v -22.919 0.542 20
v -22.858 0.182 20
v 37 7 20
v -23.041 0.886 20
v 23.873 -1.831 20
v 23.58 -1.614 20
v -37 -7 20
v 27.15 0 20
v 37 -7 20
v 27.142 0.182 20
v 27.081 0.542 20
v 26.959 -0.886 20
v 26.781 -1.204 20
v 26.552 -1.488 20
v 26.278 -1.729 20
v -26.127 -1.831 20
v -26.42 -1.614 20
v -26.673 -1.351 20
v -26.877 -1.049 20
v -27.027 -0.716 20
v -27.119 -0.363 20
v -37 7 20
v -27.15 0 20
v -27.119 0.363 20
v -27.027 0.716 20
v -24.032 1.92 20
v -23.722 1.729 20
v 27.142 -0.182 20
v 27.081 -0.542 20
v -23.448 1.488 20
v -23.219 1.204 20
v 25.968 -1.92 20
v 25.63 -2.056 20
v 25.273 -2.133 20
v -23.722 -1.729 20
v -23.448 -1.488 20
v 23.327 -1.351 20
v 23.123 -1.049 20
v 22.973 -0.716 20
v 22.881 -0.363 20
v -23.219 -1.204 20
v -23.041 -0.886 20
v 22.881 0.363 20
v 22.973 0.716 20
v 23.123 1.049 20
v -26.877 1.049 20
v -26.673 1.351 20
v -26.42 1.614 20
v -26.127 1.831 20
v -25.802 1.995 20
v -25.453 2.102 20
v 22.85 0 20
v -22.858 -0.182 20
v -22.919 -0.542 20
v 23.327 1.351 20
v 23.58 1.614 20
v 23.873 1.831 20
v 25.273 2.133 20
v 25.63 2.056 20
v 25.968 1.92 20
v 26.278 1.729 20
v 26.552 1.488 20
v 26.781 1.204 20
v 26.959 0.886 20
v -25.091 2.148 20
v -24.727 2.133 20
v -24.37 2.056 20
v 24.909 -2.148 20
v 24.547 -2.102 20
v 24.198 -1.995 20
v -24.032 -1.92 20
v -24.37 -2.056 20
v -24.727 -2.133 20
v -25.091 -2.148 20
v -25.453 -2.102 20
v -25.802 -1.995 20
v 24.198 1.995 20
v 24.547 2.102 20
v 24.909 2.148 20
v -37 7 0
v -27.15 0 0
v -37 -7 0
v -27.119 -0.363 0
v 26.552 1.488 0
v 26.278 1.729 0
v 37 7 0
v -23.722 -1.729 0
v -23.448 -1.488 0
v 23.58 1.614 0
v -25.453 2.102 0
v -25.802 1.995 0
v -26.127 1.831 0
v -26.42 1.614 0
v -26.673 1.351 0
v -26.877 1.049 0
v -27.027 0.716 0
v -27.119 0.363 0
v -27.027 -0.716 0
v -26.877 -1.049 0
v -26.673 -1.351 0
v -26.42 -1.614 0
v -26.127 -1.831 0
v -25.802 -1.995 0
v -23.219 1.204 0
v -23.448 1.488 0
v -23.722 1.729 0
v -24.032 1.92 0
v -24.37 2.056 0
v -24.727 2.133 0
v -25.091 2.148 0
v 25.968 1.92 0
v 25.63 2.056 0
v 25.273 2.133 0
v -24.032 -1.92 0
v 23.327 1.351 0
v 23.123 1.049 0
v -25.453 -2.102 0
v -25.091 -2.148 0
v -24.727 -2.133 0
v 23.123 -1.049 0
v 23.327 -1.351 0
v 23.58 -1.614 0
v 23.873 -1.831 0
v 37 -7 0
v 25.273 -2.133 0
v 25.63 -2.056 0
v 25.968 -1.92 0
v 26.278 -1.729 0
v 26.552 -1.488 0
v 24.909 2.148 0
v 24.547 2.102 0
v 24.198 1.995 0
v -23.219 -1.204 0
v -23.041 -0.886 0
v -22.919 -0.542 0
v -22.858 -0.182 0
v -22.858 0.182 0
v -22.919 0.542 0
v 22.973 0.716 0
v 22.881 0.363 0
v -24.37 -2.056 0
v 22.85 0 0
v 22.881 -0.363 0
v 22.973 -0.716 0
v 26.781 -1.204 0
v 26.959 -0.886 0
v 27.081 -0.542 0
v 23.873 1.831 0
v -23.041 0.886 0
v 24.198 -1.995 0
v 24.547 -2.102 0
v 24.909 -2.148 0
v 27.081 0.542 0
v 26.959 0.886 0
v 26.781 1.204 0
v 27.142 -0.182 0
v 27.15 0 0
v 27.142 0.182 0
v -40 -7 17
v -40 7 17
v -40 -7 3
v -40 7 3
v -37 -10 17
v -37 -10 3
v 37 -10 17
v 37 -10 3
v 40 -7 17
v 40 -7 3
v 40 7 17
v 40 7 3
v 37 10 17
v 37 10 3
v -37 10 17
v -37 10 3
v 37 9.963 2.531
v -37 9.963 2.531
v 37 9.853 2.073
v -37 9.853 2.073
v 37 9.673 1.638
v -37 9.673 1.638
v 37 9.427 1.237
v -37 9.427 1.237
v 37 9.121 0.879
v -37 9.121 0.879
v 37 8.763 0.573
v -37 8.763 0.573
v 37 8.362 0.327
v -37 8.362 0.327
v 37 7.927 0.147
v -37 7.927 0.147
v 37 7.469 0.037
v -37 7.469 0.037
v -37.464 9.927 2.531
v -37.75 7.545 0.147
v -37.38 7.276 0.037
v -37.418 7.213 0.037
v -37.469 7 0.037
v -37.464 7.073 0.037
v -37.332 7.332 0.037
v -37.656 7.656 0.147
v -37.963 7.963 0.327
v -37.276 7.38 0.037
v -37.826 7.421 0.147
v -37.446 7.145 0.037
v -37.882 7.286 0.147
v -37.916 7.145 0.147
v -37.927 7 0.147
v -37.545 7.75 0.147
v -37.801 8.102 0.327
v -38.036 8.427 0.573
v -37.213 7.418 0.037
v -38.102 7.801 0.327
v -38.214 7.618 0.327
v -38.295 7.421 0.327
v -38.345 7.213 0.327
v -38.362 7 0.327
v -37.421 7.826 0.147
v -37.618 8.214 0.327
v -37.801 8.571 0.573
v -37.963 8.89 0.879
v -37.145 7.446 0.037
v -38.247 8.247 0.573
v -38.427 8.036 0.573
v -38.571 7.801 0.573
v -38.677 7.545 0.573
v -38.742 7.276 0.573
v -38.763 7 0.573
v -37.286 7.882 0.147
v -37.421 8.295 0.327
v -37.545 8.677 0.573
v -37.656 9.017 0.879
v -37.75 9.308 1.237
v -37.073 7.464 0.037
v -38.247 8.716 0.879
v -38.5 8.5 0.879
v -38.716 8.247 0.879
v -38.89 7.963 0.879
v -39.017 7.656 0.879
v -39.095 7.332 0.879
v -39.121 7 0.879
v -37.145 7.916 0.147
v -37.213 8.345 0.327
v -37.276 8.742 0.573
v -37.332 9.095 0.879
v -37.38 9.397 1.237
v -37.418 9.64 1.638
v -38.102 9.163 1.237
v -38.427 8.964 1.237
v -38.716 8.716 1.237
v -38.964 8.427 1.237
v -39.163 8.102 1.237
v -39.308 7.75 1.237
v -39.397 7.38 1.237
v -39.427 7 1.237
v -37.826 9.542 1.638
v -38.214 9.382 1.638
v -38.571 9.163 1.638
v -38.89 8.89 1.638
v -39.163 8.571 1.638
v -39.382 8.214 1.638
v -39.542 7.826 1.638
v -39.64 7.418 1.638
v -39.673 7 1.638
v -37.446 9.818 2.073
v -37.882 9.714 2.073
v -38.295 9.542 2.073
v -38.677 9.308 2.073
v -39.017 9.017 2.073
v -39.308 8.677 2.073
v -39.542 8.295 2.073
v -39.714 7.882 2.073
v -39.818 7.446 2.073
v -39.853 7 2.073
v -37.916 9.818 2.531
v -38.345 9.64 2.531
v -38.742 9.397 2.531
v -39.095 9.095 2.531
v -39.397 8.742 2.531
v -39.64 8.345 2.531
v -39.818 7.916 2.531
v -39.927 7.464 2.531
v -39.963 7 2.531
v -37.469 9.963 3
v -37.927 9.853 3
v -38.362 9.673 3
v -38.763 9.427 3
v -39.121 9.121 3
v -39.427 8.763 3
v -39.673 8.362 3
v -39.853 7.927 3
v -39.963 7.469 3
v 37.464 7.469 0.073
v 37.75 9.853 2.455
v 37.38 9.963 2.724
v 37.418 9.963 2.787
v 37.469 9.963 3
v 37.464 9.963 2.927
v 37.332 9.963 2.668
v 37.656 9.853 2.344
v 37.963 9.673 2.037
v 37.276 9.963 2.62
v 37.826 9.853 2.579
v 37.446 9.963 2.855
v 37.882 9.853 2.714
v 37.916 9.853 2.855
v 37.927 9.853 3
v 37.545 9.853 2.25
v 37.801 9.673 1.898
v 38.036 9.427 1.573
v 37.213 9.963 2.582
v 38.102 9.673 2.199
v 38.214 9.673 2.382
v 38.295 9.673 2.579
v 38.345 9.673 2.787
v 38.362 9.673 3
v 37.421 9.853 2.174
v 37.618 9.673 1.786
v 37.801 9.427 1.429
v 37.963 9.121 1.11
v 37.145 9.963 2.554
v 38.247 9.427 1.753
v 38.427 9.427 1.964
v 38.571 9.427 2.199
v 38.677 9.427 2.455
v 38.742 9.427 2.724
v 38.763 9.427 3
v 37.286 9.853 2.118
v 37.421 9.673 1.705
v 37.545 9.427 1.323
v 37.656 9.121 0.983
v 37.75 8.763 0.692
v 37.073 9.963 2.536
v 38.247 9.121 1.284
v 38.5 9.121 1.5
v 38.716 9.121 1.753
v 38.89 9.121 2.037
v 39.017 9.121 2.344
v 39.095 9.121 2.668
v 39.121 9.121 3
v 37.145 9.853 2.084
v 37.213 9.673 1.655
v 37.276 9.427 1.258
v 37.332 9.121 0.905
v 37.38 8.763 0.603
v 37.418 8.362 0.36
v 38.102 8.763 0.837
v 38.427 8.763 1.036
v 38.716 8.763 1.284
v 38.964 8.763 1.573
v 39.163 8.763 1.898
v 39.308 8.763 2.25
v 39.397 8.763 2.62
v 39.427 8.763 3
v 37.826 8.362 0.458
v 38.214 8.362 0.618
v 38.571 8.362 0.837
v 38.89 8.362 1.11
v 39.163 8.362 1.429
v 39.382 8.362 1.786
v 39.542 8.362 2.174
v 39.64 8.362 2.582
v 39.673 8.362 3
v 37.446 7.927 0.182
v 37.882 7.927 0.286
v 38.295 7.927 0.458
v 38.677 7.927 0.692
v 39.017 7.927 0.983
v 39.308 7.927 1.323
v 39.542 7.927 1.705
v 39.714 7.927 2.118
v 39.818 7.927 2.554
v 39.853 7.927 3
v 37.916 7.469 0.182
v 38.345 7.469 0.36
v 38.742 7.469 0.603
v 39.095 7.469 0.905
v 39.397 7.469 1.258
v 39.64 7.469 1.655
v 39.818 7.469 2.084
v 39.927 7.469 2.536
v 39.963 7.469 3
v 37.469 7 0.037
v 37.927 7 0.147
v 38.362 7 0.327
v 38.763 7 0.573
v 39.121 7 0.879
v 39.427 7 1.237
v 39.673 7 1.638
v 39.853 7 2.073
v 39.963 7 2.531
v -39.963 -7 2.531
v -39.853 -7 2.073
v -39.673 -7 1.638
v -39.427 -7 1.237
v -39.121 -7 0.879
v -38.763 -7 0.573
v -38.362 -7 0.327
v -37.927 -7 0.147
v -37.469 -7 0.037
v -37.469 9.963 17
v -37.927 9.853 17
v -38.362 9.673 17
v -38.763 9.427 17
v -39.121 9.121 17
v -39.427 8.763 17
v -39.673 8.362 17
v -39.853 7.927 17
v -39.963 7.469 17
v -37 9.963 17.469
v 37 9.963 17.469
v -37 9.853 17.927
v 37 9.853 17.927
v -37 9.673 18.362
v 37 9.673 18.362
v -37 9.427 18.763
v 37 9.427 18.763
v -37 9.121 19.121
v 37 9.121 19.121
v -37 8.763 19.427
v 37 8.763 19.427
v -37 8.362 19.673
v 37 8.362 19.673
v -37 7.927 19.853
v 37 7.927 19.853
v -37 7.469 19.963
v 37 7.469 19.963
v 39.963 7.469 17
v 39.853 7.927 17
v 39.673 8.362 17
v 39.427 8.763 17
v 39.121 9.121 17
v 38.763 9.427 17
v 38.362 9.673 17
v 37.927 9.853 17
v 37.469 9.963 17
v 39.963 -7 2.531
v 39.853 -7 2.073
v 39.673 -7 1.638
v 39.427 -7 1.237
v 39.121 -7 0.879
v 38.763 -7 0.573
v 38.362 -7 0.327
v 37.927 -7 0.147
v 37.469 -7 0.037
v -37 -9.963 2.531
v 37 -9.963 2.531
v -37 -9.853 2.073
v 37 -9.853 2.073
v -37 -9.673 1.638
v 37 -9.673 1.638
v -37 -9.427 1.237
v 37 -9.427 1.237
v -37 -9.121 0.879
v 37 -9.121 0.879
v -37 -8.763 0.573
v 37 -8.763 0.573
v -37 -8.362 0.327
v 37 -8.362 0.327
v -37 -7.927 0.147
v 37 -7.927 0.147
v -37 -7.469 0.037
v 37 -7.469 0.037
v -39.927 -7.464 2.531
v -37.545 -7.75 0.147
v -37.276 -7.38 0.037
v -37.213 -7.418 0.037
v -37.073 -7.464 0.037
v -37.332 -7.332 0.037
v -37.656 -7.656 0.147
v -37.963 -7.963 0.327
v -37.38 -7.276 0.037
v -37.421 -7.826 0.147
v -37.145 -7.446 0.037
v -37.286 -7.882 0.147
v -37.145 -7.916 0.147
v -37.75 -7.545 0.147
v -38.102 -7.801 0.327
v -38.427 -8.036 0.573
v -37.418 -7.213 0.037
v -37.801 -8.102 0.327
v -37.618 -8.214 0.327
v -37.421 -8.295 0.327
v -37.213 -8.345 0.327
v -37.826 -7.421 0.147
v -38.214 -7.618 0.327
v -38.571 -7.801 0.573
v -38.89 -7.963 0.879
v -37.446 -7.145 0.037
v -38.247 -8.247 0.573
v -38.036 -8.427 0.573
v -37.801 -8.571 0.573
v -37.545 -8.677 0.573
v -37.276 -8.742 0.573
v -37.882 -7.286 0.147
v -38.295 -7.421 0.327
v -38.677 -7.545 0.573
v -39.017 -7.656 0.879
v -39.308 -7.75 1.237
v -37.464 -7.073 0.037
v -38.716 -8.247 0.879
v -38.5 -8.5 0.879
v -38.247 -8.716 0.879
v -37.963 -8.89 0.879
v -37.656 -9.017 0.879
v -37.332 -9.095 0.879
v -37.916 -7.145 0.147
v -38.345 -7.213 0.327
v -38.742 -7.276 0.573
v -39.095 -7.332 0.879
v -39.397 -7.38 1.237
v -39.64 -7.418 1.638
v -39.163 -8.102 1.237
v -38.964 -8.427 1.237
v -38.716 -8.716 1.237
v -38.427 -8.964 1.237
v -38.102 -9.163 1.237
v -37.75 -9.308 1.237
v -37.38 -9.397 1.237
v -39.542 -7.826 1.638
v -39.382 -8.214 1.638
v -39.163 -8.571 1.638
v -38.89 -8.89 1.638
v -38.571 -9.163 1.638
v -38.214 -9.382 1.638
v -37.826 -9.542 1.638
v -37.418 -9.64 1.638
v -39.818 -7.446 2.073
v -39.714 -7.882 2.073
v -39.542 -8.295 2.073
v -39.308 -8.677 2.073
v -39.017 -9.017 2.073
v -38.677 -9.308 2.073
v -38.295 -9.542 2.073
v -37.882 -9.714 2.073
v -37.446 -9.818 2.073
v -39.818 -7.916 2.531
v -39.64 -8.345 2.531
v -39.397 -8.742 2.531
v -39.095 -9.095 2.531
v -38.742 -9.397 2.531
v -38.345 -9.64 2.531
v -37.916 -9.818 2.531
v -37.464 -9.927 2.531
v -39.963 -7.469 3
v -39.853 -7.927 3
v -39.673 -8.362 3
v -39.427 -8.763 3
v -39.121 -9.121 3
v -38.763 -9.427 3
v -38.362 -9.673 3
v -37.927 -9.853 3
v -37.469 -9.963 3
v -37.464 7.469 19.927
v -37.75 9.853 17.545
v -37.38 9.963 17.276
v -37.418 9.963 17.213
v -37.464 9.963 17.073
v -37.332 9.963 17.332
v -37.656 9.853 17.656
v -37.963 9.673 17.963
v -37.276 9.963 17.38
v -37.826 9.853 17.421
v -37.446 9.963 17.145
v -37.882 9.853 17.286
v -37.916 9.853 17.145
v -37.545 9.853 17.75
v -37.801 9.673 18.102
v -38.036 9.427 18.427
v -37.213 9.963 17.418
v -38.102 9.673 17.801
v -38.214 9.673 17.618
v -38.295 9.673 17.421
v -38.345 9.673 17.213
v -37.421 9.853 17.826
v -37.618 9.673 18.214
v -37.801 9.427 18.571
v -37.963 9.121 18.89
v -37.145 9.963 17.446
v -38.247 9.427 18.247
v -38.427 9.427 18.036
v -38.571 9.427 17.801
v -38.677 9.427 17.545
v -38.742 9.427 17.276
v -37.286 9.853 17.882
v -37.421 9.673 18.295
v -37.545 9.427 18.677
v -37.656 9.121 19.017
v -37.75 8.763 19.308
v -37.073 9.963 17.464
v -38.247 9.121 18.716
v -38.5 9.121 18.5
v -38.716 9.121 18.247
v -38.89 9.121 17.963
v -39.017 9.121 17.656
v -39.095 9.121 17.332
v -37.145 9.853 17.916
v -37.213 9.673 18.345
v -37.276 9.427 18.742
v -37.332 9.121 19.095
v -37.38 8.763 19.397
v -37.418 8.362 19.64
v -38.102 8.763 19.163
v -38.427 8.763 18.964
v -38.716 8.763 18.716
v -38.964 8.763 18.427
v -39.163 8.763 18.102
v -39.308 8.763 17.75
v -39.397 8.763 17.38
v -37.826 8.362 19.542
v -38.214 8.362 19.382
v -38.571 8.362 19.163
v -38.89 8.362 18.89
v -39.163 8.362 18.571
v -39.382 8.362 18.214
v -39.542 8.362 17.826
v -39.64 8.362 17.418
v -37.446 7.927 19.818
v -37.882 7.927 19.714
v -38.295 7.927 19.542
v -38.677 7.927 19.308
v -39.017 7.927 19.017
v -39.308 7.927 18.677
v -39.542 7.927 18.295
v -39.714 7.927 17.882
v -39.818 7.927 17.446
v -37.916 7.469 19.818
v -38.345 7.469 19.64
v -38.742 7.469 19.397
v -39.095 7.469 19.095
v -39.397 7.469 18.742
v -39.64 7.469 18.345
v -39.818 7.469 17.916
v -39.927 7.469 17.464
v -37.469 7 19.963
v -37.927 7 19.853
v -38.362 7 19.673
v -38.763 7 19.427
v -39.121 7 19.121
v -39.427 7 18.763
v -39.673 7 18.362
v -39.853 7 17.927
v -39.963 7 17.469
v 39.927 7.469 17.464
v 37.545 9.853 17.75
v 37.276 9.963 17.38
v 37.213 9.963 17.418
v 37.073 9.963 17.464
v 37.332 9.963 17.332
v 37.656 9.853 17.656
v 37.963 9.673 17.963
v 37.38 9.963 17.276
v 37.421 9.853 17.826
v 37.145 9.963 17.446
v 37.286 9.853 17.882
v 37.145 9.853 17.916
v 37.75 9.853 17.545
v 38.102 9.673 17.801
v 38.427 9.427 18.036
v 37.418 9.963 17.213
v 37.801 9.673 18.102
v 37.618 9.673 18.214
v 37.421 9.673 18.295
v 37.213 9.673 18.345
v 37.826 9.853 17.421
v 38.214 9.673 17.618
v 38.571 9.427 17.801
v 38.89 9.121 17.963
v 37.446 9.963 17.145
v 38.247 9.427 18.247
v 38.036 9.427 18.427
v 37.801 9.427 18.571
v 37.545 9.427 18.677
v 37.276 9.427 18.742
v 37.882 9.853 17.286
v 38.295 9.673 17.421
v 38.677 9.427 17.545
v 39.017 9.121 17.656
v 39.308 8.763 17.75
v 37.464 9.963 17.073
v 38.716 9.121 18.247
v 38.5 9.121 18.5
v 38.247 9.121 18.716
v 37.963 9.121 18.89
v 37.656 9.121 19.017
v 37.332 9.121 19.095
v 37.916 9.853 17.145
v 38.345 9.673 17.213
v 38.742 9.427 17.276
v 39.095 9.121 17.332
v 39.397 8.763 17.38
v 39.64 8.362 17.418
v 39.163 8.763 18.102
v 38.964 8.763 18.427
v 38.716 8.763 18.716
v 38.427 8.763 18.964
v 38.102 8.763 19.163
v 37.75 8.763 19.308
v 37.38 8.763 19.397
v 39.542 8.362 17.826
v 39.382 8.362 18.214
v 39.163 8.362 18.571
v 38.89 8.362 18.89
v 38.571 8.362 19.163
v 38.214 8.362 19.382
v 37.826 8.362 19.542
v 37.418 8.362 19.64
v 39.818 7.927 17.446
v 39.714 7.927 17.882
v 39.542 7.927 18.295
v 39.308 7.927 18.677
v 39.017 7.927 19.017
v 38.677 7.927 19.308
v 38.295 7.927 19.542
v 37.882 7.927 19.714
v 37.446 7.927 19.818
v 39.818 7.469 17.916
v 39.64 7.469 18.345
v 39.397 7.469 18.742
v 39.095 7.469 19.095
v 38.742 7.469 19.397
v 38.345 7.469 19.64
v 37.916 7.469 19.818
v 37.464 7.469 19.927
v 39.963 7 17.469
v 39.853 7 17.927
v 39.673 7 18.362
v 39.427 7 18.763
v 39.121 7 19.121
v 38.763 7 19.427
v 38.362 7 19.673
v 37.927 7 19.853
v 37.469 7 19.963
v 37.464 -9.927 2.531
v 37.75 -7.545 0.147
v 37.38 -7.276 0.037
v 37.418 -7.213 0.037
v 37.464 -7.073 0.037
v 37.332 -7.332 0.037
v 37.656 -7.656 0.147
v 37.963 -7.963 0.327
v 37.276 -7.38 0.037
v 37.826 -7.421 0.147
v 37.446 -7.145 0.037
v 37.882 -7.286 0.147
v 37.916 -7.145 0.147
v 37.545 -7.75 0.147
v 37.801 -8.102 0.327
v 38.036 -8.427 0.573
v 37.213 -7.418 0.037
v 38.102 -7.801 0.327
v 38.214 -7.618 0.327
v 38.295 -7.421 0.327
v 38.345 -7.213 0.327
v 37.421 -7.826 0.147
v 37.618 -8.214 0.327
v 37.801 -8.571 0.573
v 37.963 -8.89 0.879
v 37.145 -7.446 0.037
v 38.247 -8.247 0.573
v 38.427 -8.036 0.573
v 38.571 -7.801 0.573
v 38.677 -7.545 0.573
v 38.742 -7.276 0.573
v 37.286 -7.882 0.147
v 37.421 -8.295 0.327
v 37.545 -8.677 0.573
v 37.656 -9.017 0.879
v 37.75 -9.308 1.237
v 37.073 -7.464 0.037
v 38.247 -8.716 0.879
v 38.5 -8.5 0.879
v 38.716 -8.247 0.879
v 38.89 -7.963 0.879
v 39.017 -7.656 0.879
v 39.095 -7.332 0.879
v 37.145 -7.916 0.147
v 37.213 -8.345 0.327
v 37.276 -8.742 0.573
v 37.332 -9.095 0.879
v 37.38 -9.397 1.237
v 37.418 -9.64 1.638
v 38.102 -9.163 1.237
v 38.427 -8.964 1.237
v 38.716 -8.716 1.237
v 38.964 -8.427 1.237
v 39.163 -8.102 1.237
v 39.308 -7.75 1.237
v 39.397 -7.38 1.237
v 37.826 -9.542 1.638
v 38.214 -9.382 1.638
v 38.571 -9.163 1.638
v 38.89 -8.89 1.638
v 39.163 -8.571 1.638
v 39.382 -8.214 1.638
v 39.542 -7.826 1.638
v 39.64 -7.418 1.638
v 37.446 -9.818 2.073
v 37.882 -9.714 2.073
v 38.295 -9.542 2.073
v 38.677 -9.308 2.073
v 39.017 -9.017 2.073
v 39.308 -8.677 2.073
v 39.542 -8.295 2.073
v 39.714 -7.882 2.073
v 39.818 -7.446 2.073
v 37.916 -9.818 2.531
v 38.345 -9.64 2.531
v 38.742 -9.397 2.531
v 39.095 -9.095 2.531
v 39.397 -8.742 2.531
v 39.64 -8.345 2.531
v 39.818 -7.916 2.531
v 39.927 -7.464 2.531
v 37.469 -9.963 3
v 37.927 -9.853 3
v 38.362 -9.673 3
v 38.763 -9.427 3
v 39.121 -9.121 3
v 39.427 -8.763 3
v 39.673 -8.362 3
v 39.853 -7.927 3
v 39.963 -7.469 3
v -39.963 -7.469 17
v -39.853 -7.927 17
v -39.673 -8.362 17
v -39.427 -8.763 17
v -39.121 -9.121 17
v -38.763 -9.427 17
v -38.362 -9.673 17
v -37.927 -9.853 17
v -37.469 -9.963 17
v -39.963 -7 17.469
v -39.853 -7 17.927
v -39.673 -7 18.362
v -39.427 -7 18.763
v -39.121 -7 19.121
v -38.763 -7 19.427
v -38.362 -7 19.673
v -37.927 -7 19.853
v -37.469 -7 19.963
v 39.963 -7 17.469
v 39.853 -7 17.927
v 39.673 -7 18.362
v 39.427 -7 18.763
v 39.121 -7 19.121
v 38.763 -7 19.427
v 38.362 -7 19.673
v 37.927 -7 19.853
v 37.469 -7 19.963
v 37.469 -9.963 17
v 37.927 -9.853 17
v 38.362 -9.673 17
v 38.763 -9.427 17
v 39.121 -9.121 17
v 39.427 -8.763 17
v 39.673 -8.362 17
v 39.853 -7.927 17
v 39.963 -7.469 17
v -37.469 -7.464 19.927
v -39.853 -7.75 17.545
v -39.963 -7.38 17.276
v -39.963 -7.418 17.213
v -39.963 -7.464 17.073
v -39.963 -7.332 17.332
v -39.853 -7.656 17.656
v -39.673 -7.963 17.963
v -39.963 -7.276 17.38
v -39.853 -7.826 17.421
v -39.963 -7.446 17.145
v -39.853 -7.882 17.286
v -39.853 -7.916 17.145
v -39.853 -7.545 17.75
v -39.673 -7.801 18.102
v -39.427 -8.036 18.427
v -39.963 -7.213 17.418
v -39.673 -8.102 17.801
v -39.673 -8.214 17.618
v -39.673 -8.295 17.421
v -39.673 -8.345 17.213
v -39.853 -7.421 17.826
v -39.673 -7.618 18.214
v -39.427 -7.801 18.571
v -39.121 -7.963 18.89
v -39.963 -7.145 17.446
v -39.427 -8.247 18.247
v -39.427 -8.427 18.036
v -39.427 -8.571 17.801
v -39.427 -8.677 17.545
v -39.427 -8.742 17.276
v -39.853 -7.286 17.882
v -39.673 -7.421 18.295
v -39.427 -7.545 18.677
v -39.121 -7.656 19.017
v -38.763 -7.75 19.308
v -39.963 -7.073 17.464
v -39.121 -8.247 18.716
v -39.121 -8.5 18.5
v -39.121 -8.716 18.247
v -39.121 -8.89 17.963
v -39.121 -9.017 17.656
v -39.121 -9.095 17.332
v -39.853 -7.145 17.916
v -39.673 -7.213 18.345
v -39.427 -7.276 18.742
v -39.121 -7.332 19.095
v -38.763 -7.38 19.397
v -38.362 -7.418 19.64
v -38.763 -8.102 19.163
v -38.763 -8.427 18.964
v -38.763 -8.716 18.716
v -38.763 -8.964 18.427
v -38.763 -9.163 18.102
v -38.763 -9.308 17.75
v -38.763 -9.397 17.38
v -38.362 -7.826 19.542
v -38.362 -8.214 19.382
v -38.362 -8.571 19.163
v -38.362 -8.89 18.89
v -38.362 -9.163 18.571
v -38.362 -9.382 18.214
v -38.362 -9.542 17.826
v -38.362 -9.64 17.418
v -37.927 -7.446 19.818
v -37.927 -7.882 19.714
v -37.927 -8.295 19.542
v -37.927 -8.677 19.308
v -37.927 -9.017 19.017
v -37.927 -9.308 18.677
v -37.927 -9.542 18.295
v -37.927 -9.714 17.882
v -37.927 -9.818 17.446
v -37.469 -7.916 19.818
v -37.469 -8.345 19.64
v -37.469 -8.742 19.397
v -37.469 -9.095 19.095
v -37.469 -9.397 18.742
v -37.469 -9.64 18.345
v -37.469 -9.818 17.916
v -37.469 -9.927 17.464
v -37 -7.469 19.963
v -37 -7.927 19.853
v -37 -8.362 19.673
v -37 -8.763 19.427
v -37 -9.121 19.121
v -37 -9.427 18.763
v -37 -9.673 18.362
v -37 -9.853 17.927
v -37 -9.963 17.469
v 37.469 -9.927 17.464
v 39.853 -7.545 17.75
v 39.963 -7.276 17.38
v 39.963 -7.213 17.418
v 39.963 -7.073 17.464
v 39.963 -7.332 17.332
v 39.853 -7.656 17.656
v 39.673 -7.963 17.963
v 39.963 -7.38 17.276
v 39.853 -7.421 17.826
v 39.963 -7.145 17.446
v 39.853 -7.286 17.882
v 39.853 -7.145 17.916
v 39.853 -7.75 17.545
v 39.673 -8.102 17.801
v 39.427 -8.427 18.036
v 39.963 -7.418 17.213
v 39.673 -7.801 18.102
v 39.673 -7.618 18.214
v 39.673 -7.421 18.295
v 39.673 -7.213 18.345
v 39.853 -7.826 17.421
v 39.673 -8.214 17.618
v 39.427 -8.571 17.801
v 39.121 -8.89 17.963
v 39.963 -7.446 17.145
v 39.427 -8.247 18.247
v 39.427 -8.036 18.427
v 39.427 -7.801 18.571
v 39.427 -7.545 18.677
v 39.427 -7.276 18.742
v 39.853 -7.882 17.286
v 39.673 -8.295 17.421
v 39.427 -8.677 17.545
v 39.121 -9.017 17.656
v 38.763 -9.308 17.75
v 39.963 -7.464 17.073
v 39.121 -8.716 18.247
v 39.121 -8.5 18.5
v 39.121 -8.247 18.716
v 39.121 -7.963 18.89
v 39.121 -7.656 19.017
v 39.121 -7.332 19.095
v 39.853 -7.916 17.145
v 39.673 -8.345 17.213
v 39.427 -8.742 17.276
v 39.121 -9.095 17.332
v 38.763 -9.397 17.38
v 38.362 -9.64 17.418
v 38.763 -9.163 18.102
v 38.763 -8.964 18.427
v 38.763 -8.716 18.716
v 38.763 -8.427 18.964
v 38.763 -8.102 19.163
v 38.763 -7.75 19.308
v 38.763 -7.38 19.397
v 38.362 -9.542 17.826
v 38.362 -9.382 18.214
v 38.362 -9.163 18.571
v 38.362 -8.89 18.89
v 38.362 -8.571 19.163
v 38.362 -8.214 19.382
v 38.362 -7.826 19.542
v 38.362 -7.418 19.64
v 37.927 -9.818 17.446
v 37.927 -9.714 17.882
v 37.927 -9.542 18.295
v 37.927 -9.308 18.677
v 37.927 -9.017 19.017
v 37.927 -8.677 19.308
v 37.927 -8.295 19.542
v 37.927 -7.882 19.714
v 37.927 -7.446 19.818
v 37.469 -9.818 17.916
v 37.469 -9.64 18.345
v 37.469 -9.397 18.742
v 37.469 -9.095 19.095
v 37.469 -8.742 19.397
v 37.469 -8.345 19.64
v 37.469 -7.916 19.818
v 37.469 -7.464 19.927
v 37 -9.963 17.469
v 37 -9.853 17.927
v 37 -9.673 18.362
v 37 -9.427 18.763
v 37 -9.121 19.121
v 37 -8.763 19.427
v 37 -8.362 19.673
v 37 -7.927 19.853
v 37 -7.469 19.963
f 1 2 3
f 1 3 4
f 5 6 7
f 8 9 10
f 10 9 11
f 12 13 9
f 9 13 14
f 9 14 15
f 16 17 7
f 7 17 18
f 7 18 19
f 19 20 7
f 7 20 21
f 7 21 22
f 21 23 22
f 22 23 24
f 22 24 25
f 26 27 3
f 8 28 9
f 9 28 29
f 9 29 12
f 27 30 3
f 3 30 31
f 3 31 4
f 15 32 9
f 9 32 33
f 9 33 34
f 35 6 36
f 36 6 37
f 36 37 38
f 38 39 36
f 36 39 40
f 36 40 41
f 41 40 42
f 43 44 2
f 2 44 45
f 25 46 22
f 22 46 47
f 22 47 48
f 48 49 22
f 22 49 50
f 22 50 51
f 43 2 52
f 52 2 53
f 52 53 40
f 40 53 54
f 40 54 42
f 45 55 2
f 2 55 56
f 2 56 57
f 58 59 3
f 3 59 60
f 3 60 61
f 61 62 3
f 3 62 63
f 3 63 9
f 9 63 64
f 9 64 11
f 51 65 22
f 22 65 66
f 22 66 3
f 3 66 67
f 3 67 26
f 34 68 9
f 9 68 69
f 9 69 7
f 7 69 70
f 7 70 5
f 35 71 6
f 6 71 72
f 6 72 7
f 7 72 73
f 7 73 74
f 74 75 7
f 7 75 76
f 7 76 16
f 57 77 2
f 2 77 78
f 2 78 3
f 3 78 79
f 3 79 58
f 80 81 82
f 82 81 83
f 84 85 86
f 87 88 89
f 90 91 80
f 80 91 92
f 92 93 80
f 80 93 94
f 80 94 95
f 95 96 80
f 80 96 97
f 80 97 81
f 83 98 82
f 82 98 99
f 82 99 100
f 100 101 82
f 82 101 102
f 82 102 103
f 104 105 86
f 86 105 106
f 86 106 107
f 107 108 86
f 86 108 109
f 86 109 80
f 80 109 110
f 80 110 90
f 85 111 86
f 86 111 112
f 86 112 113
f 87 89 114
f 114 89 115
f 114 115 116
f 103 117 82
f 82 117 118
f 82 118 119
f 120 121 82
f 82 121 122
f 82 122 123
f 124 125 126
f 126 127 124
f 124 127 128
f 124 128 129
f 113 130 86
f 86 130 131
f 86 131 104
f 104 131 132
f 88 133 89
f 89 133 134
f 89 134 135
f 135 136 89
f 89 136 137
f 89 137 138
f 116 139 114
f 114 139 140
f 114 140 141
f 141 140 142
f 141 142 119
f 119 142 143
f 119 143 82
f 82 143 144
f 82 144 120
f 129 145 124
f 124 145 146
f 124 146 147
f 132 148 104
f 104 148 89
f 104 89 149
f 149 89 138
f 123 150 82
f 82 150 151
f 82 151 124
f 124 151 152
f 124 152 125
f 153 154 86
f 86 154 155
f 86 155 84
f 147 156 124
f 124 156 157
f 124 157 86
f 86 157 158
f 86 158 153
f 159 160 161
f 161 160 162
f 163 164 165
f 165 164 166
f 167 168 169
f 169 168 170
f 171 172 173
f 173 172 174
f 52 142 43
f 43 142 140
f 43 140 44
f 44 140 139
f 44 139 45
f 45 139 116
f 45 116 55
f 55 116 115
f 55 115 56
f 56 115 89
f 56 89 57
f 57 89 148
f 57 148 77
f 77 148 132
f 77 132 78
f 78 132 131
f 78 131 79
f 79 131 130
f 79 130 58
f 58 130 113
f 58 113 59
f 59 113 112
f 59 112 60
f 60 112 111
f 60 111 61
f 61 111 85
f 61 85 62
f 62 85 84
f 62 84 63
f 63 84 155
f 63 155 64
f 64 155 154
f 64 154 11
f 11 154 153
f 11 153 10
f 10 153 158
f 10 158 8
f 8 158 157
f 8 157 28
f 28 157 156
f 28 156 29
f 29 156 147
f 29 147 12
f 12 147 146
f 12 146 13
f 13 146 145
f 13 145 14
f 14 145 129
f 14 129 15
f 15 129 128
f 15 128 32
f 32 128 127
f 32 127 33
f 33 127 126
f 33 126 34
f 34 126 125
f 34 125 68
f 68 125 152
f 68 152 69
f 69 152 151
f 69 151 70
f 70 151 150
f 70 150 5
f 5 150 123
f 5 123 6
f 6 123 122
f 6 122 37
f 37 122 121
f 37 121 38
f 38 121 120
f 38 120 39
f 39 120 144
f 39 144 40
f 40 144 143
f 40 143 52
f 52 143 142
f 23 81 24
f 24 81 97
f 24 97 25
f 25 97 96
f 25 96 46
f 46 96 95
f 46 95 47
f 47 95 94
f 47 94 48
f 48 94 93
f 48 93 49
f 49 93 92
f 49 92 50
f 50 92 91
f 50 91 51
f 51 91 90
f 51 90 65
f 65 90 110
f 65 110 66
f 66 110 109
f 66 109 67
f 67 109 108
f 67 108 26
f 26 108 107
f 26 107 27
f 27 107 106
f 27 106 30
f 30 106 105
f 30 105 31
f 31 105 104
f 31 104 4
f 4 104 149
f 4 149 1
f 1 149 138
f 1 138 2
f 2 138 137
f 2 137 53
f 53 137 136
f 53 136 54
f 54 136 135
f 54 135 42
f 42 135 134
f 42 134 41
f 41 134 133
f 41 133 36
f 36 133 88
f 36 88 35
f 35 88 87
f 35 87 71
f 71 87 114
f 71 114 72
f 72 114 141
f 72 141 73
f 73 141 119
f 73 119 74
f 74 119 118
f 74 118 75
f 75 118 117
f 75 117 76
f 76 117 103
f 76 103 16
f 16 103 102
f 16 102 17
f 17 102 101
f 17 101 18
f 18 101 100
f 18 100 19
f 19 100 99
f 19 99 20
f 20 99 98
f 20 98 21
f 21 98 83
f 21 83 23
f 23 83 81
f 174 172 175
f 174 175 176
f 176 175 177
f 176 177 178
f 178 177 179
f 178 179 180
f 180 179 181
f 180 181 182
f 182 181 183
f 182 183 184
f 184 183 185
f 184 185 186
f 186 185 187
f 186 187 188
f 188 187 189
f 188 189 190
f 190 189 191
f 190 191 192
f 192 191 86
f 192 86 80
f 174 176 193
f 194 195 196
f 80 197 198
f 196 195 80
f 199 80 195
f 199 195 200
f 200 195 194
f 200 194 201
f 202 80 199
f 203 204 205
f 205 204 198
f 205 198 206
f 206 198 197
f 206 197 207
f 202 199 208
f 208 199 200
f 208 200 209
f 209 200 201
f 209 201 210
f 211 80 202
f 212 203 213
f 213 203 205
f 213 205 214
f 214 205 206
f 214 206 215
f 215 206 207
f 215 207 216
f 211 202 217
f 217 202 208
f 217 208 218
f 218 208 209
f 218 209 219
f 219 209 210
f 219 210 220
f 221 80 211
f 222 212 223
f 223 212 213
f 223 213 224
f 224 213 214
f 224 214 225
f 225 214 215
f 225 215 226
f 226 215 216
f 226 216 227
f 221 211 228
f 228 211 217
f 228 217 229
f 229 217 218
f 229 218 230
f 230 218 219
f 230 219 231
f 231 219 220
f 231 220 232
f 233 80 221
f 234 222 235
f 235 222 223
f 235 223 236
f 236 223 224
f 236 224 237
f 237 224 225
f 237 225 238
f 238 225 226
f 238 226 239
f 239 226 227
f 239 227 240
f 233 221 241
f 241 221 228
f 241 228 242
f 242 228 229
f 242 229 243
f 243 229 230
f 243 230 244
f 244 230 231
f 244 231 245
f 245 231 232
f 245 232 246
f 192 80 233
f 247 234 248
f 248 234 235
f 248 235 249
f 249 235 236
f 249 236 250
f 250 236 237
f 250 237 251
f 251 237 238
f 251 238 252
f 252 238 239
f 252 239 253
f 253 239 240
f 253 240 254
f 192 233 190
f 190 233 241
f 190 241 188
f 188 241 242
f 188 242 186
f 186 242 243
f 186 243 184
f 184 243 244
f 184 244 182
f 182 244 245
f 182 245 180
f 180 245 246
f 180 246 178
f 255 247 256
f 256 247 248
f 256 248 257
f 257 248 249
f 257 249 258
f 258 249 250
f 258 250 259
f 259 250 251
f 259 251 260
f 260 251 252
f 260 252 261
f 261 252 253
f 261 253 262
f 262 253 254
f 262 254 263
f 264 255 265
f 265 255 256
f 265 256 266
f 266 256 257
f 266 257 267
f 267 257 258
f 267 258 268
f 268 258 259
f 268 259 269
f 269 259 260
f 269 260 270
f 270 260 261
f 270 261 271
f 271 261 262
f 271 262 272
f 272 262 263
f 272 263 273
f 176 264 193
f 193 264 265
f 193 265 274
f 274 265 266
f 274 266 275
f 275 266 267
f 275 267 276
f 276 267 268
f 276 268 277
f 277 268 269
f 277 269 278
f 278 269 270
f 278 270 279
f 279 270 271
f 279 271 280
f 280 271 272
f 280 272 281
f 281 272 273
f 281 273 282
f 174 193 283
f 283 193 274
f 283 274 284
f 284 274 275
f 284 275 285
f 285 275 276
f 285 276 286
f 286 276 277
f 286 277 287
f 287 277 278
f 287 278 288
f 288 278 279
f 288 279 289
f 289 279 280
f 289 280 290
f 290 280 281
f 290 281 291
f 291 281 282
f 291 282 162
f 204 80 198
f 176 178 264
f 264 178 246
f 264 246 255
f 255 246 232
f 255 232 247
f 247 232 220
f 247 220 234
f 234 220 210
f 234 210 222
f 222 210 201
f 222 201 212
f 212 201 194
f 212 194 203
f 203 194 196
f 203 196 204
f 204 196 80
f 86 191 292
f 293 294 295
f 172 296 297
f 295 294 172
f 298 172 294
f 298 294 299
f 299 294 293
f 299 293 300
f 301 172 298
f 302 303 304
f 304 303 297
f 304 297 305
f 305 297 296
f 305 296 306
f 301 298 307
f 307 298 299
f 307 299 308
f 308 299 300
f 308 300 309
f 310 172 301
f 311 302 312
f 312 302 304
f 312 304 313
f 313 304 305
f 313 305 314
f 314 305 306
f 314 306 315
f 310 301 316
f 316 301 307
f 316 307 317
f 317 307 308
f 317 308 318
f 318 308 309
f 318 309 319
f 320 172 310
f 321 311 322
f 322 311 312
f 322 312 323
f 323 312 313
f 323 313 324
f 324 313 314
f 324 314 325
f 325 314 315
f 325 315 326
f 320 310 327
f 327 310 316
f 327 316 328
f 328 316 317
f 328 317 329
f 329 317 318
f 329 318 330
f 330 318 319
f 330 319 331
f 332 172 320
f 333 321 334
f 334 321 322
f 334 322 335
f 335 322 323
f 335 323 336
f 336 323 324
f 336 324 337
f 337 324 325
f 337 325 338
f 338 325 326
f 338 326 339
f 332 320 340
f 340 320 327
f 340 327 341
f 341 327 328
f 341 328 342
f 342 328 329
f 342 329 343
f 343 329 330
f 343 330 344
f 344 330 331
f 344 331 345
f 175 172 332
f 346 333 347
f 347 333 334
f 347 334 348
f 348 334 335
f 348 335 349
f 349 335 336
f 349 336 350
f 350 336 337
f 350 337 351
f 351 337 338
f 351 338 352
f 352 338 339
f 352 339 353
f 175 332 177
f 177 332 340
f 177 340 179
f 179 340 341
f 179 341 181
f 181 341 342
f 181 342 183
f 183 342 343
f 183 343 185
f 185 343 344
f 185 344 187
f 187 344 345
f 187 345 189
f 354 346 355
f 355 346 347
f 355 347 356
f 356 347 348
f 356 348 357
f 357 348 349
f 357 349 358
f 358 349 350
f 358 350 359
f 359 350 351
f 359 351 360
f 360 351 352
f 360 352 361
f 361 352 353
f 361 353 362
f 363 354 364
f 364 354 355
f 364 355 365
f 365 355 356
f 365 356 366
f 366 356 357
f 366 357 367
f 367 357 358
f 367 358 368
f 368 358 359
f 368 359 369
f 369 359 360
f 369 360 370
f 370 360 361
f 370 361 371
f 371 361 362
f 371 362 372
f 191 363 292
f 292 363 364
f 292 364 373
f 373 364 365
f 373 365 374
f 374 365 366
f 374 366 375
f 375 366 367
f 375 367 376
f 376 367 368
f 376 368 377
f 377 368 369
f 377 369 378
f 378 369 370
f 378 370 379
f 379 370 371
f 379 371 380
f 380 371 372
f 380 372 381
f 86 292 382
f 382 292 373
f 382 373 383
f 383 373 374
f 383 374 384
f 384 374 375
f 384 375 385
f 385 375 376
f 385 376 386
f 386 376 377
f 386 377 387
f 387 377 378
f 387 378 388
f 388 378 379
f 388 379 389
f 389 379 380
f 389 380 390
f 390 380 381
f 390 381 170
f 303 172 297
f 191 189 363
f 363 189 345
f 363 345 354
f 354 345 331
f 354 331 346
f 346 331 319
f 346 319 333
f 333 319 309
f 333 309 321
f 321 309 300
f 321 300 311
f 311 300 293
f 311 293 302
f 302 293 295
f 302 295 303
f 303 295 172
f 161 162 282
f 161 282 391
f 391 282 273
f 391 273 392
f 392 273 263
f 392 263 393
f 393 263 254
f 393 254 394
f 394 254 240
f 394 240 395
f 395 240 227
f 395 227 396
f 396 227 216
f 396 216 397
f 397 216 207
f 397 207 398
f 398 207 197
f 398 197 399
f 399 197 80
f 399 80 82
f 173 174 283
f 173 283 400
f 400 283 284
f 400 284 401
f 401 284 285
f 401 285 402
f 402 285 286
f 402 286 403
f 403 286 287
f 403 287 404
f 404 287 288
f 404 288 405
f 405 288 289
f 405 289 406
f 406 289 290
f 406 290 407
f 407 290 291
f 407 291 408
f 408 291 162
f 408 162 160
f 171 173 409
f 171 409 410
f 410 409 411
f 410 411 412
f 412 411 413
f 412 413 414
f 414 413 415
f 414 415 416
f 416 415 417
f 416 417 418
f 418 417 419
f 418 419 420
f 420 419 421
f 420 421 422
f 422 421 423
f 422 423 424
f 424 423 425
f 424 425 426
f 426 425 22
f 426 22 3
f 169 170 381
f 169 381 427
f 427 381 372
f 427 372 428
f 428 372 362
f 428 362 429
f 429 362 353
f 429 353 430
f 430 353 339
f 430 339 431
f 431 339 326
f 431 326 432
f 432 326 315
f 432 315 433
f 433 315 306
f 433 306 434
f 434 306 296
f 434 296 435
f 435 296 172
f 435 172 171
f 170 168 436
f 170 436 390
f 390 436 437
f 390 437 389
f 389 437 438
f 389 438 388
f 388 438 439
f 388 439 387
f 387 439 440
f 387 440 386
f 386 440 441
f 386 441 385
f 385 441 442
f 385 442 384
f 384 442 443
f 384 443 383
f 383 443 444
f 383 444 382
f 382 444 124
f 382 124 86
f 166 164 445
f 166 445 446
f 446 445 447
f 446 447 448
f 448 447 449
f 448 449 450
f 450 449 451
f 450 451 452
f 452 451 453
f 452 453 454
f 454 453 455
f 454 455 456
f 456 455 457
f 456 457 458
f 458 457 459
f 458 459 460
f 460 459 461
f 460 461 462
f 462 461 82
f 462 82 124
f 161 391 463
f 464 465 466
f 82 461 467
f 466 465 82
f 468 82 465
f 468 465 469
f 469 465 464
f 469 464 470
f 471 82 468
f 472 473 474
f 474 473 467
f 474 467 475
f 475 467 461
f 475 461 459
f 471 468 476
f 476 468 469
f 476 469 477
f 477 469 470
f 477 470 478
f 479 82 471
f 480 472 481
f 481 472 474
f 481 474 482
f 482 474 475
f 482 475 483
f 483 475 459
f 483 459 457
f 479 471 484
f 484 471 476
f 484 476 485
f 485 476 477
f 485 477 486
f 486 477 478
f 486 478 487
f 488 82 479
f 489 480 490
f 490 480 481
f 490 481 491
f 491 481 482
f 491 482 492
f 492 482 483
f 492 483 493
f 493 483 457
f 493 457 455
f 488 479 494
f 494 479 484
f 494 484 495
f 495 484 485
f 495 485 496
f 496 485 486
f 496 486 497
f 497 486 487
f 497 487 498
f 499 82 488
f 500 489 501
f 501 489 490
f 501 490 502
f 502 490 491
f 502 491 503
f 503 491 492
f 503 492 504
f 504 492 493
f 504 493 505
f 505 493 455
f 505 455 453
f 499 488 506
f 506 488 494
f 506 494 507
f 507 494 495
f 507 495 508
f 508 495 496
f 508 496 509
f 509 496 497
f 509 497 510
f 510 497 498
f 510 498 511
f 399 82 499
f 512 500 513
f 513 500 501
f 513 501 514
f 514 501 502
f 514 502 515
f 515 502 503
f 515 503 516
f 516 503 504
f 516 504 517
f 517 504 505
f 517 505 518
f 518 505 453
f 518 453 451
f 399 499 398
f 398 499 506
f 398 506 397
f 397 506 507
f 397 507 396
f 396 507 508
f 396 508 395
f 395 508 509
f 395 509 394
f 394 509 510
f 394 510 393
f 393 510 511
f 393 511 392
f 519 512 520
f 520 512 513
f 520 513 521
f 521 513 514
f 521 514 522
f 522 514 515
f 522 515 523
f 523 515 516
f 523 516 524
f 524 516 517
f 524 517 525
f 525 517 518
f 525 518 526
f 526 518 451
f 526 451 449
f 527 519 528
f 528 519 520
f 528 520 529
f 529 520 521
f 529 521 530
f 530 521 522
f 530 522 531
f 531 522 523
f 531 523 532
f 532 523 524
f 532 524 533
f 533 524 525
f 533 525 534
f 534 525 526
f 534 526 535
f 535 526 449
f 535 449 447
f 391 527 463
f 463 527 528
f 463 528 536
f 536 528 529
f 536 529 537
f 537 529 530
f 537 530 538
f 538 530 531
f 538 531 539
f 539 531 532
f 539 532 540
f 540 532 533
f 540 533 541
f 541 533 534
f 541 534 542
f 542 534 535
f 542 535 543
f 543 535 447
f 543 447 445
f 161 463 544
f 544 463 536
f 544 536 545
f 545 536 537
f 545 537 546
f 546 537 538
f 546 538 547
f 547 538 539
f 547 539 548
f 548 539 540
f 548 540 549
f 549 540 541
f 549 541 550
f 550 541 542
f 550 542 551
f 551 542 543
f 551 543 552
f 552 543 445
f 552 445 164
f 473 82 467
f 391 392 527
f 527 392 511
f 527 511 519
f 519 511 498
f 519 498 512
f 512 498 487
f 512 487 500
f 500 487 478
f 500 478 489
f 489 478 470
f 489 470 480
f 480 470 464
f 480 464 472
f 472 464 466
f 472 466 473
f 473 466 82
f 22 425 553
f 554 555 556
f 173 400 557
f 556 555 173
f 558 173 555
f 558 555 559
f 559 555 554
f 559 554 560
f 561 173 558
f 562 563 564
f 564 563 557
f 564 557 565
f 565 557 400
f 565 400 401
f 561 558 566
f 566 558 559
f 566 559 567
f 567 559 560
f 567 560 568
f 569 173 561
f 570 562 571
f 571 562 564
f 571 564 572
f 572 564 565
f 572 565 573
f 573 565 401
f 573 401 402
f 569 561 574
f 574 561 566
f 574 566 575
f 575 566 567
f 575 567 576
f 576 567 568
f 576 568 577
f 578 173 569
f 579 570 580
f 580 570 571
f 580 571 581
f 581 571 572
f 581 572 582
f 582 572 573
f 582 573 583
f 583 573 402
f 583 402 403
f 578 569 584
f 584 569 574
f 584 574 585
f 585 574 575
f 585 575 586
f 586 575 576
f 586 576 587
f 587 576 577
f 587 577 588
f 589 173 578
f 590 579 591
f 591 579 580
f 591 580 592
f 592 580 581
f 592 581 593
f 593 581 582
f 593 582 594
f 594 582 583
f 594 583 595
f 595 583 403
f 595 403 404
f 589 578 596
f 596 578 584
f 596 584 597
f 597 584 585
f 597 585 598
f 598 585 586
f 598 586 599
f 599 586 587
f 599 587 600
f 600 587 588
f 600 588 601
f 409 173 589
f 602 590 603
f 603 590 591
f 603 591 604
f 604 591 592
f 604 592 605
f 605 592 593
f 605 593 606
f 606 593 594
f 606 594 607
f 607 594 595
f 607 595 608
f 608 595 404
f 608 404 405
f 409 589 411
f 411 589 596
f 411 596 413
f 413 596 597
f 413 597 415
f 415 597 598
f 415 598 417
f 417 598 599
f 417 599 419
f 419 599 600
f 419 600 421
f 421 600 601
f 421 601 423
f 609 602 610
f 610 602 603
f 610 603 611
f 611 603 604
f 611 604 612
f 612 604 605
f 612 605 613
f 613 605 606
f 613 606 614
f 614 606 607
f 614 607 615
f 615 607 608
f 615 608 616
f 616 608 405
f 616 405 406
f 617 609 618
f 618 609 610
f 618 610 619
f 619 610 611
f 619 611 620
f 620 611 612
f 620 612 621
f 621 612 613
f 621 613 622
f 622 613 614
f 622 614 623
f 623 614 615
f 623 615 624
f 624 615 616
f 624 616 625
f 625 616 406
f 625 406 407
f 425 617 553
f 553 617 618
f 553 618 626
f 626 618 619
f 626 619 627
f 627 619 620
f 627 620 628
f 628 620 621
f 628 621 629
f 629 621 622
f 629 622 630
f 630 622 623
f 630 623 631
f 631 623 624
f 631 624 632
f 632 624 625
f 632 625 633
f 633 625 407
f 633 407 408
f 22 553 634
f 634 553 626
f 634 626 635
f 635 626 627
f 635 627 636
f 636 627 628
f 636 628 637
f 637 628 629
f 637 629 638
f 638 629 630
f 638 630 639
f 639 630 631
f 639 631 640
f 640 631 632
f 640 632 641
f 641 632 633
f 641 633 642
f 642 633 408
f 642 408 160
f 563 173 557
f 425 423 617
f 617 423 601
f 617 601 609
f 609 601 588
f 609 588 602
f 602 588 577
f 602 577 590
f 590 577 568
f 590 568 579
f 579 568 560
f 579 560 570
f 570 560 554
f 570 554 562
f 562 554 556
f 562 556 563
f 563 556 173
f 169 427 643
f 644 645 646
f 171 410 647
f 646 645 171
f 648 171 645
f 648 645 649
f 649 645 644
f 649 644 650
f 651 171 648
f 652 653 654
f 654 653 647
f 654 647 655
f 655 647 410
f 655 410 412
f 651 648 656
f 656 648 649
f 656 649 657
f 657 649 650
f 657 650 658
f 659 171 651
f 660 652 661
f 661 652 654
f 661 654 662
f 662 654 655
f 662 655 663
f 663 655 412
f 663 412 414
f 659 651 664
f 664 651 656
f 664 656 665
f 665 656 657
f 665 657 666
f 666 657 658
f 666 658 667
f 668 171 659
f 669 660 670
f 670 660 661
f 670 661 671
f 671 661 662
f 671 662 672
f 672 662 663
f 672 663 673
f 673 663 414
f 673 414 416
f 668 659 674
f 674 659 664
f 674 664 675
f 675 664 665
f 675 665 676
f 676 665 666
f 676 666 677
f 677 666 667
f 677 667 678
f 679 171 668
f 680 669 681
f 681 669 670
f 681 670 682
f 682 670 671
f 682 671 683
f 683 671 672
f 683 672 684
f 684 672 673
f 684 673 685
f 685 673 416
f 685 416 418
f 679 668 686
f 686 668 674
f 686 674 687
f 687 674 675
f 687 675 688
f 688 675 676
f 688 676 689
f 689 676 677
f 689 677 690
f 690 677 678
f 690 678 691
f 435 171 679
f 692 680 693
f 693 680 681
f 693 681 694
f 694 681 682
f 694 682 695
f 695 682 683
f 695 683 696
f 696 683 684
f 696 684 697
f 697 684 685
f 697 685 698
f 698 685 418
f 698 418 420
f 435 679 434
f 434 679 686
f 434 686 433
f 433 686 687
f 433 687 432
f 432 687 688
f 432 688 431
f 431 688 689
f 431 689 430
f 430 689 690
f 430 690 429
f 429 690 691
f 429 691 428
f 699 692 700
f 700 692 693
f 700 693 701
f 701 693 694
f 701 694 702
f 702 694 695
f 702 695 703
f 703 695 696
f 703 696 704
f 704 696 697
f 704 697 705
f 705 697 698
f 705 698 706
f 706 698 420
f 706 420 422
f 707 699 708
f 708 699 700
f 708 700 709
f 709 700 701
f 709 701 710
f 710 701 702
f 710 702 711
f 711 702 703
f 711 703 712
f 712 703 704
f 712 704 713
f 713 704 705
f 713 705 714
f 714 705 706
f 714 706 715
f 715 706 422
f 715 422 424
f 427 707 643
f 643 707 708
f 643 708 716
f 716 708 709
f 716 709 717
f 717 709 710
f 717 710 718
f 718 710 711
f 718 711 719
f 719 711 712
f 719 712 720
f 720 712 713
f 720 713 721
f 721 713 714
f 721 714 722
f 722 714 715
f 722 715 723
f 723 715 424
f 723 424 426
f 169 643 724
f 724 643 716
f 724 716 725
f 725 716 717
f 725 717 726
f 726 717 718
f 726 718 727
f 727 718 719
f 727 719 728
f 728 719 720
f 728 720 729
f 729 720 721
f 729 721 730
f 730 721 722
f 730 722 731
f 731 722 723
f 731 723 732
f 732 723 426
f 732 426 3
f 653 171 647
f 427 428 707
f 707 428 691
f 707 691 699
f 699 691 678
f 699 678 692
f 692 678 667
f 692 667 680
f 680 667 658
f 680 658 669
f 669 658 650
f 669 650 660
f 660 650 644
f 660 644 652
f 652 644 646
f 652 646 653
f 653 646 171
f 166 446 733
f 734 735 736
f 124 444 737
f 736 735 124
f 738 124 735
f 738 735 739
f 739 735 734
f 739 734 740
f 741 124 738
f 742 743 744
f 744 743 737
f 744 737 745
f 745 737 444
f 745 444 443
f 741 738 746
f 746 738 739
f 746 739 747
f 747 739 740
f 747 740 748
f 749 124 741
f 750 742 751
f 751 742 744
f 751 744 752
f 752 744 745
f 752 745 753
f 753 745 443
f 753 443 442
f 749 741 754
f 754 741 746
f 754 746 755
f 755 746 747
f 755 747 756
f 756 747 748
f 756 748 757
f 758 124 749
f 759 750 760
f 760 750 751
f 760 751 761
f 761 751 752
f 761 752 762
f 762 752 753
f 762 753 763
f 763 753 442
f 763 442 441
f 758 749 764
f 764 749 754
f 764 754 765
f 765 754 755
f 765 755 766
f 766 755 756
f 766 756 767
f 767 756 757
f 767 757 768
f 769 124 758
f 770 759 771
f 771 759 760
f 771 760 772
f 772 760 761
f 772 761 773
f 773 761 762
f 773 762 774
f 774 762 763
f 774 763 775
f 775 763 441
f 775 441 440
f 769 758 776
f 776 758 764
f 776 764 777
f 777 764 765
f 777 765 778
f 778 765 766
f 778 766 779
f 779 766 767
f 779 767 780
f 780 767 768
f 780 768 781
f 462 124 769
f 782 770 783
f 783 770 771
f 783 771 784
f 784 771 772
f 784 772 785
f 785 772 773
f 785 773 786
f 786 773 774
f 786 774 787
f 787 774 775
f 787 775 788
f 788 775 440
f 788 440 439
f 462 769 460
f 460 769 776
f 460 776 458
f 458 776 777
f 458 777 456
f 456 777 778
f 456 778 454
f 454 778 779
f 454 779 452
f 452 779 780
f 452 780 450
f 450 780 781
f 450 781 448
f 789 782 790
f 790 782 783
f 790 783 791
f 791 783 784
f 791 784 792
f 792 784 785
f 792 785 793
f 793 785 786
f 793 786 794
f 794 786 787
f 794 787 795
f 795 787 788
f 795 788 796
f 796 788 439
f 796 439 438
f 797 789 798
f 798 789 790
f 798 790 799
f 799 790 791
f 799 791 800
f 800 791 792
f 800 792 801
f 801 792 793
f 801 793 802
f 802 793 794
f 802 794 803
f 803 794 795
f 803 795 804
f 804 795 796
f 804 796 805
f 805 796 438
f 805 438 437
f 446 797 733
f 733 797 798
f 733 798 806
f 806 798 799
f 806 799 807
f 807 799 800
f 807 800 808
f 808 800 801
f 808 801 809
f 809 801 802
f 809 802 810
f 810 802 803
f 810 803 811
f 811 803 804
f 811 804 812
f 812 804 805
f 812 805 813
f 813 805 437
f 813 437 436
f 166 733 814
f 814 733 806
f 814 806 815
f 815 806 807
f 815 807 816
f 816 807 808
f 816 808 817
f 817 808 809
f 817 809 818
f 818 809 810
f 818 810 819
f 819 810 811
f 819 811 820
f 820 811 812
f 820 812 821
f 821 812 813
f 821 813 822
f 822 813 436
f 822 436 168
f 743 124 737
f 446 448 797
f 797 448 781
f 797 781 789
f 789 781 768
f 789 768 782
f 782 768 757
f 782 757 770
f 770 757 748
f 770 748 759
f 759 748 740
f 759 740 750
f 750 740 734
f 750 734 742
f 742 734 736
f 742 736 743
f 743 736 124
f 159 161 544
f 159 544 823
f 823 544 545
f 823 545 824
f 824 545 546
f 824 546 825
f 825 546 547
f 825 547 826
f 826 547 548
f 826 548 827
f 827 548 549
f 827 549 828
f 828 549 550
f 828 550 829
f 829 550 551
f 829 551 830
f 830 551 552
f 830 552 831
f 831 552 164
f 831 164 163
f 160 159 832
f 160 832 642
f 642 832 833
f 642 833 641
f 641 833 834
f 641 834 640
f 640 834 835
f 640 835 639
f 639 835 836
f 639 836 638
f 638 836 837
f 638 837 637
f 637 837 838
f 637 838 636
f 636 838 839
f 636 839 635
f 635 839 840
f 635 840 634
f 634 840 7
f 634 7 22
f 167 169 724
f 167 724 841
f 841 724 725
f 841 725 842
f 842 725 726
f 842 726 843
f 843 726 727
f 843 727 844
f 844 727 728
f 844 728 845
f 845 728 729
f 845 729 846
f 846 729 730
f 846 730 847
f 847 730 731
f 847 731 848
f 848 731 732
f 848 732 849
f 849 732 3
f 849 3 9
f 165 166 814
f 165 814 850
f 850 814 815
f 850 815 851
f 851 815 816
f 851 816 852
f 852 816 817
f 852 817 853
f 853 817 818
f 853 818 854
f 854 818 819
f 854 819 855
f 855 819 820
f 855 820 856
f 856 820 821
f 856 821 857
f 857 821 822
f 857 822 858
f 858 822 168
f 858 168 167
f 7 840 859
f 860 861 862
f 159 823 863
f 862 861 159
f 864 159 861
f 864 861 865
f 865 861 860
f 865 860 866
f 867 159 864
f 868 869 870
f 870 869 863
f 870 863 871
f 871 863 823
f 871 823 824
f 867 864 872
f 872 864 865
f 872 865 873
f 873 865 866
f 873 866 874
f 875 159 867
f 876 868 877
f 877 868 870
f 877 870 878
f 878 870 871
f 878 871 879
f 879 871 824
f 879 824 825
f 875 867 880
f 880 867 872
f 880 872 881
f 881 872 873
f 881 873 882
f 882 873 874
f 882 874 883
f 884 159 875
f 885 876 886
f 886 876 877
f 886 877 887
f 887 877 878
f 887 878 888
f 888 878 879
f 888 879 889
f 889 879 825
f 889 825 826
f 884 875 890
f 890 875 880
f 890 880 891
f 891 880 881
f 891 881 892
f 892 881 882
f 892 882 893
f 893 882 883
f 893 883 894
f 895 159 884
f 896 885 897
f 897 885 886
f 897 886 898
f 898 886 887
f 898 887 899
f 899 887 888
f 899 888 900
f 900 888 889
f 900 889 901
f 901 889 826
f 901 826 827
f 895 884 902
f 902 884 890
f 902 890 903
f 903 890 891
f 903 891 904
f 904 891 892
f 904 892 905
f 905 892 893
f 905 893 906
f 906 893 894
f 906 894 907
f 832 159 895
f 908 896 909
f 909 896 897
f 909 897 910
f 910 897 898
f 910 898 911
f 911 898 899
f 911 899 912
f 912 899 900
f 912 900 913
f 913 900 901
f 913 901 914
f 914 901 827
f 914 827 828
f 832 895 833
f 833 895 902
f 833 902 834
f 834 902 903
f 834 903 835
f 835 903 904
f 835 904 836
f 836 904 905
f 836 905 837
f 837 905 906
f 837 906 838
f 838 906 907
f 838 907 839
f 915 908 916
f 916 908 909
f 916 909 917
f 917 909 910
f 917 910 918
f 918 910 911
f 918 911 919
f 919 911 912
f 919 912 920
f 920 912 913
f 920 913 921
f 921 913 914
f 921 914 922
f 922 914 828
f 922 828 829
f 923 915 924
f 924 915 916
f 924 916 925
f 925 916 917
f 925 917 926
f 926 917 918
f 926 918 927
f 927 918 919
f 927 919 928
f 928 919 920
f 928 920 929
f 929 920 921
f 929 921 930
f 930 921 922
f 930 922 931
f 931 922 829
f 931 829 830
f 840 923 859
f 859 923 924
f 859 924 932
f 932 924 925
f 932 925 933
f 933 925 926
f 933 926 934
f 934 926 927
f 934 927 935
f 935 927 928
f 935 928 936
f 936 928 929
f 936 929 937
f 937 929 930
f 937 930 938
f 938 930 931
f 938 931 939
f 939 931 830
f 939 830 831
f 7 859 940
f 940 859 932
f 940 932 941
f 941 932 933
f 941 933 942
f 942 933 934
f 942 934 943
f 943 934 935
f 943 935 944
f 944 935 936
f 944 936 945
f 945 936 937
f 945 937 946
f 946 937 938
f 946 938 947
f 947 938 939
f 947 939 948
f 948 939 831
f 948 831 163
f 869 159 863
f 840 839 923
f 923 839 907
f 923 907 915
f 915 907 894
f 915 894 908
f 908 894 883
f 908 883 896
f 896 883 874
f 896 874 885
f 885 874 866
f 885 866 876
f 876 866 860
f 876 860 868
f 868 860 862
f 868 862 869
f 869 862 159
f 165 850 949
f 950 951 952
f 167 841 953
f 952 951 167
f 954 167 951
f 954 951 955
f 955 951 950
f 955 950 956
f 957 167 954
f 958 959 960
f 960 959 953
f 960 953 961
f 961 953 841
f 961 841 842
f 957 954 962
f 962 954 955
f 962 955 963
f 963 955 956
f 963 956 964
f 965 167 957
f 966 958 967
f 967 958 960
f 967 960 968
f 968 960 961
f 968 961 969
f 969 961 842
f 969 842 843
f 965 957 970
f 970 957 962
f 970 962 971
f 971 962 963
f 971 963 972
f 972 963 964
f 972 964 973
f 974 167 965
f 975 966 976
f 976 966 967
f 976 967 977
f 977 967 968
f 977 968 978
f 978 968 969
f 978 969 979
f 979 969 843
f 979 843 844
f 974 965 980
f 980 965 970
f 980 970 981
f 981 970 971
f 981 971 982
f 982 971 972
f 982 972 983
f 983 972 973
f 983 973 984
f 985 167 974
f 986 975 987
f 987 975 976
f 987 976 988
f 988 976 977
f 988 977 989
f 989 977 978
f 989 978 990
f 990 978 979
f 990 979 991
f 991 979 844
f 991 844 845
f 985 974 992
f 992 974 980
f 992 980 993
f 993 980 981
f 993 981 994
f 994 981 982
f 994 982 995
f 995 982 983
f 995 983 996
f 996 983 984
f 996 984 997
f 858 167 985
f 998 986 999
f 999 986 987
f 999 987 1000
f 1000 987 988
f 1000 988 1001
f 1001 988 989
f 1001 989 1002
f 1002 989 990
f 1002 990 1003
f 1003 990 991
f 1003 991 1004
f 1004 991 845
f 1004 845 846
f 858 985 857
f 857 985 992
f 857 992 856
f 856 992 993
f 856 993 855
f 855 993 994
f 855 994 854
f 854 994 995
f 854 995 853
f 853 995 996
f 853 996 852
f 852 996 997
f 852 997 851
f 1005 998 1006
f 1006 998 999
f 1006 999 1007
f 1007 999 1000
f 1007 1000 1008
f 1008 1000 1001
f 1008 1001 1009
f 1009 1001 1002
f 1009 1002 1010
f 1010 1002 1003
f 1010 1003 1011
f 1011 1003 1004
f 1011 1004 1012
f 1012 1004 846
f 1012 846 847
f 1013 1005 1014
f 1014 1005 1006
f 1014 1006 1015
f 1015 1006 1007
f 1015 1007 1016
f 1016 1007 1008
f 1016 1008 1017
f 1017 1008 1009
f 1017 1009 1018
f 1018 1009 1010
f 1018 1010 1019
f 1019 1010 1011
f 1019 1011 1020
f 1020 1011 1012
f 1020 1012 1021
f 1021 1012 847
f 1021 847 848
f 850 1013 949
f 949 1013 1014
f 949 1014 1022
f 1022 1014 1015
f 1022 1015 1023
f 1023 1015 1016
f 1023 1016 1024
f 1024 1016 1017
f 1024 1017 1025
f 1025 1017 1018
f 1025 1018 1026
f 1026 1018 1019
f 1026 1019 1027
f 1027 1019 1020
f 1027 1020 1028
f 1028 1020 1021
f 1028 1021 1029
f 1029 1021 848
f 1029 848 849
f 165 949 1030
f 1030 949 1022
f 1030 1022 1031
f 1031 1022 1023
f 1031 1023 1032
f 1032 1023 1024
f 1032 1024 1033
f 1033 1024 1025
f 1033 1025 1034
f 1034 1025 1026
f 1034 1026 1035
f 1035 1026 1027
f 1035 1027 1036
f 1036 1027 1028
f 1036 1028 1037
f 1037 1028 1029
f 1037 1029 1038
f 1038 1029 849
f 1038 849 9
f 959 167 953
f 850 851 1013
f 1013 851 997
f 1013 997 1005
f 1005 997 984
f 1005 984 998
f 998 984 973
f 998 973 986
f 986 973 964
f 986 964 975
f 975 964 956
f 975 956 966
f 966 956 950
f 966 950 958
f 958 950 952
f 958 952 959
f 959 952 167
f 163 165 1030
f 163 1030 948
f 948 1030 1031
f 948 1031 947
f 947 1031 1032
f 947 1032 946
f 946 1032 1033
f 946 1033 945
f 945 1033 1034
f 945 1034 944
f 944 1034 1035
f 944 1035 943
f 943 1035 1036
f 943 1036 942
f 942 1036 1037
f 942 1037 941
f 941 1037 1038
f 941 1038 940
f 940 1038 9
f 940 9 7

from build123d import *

# Parameters (mm, degrees)
CROQUIS1_W              = 80
CROQUIS1_H              = 20
CROQUIS1_R              = 2.15
SALIENTE_EXTRUIR1_DEPTH = 20
REDONDEO1_R             = 3


with BuildPart() as part:
    # Croquis1 → Saliente-Extruir1 (new body)
    with BuildSketch(Plane.XY):
        Rectangle(CROQUIS1_W, CROQUIS1_H)
        with Locations((25, 0)):
            Circle(CROQUIS1_R, mode=Mode.SUBTRACT)
        with Locations(Location((-25, 0, 0), (0, 0, 180))):
            Circle(CROQUIS1_R, mode=Mode.SUBTRACT)
    extrude(amount=SALIENTE_EXTRUIR1_DEPTH)

    # Redondeo1
    redondeo1_edges = [part.edges().sort_by_distance(p)[0] for p in [
        (40, 0, 20),
        (0, 10, 20),
        (-40, 0, 20),
        (0, 10, 0),
        (40, 0, 0),
        (0, -10, 0),
        (-40, 0, 0),
        (-40, 10, 10),
        (40, 10, 10),
        (40, -10, 10),
        (-40, -10, 10),
        (0, -10, 20),
    ]]
    fillet(redondeo1_edges, radius=REDONDEO1_R)


solid = part.part
